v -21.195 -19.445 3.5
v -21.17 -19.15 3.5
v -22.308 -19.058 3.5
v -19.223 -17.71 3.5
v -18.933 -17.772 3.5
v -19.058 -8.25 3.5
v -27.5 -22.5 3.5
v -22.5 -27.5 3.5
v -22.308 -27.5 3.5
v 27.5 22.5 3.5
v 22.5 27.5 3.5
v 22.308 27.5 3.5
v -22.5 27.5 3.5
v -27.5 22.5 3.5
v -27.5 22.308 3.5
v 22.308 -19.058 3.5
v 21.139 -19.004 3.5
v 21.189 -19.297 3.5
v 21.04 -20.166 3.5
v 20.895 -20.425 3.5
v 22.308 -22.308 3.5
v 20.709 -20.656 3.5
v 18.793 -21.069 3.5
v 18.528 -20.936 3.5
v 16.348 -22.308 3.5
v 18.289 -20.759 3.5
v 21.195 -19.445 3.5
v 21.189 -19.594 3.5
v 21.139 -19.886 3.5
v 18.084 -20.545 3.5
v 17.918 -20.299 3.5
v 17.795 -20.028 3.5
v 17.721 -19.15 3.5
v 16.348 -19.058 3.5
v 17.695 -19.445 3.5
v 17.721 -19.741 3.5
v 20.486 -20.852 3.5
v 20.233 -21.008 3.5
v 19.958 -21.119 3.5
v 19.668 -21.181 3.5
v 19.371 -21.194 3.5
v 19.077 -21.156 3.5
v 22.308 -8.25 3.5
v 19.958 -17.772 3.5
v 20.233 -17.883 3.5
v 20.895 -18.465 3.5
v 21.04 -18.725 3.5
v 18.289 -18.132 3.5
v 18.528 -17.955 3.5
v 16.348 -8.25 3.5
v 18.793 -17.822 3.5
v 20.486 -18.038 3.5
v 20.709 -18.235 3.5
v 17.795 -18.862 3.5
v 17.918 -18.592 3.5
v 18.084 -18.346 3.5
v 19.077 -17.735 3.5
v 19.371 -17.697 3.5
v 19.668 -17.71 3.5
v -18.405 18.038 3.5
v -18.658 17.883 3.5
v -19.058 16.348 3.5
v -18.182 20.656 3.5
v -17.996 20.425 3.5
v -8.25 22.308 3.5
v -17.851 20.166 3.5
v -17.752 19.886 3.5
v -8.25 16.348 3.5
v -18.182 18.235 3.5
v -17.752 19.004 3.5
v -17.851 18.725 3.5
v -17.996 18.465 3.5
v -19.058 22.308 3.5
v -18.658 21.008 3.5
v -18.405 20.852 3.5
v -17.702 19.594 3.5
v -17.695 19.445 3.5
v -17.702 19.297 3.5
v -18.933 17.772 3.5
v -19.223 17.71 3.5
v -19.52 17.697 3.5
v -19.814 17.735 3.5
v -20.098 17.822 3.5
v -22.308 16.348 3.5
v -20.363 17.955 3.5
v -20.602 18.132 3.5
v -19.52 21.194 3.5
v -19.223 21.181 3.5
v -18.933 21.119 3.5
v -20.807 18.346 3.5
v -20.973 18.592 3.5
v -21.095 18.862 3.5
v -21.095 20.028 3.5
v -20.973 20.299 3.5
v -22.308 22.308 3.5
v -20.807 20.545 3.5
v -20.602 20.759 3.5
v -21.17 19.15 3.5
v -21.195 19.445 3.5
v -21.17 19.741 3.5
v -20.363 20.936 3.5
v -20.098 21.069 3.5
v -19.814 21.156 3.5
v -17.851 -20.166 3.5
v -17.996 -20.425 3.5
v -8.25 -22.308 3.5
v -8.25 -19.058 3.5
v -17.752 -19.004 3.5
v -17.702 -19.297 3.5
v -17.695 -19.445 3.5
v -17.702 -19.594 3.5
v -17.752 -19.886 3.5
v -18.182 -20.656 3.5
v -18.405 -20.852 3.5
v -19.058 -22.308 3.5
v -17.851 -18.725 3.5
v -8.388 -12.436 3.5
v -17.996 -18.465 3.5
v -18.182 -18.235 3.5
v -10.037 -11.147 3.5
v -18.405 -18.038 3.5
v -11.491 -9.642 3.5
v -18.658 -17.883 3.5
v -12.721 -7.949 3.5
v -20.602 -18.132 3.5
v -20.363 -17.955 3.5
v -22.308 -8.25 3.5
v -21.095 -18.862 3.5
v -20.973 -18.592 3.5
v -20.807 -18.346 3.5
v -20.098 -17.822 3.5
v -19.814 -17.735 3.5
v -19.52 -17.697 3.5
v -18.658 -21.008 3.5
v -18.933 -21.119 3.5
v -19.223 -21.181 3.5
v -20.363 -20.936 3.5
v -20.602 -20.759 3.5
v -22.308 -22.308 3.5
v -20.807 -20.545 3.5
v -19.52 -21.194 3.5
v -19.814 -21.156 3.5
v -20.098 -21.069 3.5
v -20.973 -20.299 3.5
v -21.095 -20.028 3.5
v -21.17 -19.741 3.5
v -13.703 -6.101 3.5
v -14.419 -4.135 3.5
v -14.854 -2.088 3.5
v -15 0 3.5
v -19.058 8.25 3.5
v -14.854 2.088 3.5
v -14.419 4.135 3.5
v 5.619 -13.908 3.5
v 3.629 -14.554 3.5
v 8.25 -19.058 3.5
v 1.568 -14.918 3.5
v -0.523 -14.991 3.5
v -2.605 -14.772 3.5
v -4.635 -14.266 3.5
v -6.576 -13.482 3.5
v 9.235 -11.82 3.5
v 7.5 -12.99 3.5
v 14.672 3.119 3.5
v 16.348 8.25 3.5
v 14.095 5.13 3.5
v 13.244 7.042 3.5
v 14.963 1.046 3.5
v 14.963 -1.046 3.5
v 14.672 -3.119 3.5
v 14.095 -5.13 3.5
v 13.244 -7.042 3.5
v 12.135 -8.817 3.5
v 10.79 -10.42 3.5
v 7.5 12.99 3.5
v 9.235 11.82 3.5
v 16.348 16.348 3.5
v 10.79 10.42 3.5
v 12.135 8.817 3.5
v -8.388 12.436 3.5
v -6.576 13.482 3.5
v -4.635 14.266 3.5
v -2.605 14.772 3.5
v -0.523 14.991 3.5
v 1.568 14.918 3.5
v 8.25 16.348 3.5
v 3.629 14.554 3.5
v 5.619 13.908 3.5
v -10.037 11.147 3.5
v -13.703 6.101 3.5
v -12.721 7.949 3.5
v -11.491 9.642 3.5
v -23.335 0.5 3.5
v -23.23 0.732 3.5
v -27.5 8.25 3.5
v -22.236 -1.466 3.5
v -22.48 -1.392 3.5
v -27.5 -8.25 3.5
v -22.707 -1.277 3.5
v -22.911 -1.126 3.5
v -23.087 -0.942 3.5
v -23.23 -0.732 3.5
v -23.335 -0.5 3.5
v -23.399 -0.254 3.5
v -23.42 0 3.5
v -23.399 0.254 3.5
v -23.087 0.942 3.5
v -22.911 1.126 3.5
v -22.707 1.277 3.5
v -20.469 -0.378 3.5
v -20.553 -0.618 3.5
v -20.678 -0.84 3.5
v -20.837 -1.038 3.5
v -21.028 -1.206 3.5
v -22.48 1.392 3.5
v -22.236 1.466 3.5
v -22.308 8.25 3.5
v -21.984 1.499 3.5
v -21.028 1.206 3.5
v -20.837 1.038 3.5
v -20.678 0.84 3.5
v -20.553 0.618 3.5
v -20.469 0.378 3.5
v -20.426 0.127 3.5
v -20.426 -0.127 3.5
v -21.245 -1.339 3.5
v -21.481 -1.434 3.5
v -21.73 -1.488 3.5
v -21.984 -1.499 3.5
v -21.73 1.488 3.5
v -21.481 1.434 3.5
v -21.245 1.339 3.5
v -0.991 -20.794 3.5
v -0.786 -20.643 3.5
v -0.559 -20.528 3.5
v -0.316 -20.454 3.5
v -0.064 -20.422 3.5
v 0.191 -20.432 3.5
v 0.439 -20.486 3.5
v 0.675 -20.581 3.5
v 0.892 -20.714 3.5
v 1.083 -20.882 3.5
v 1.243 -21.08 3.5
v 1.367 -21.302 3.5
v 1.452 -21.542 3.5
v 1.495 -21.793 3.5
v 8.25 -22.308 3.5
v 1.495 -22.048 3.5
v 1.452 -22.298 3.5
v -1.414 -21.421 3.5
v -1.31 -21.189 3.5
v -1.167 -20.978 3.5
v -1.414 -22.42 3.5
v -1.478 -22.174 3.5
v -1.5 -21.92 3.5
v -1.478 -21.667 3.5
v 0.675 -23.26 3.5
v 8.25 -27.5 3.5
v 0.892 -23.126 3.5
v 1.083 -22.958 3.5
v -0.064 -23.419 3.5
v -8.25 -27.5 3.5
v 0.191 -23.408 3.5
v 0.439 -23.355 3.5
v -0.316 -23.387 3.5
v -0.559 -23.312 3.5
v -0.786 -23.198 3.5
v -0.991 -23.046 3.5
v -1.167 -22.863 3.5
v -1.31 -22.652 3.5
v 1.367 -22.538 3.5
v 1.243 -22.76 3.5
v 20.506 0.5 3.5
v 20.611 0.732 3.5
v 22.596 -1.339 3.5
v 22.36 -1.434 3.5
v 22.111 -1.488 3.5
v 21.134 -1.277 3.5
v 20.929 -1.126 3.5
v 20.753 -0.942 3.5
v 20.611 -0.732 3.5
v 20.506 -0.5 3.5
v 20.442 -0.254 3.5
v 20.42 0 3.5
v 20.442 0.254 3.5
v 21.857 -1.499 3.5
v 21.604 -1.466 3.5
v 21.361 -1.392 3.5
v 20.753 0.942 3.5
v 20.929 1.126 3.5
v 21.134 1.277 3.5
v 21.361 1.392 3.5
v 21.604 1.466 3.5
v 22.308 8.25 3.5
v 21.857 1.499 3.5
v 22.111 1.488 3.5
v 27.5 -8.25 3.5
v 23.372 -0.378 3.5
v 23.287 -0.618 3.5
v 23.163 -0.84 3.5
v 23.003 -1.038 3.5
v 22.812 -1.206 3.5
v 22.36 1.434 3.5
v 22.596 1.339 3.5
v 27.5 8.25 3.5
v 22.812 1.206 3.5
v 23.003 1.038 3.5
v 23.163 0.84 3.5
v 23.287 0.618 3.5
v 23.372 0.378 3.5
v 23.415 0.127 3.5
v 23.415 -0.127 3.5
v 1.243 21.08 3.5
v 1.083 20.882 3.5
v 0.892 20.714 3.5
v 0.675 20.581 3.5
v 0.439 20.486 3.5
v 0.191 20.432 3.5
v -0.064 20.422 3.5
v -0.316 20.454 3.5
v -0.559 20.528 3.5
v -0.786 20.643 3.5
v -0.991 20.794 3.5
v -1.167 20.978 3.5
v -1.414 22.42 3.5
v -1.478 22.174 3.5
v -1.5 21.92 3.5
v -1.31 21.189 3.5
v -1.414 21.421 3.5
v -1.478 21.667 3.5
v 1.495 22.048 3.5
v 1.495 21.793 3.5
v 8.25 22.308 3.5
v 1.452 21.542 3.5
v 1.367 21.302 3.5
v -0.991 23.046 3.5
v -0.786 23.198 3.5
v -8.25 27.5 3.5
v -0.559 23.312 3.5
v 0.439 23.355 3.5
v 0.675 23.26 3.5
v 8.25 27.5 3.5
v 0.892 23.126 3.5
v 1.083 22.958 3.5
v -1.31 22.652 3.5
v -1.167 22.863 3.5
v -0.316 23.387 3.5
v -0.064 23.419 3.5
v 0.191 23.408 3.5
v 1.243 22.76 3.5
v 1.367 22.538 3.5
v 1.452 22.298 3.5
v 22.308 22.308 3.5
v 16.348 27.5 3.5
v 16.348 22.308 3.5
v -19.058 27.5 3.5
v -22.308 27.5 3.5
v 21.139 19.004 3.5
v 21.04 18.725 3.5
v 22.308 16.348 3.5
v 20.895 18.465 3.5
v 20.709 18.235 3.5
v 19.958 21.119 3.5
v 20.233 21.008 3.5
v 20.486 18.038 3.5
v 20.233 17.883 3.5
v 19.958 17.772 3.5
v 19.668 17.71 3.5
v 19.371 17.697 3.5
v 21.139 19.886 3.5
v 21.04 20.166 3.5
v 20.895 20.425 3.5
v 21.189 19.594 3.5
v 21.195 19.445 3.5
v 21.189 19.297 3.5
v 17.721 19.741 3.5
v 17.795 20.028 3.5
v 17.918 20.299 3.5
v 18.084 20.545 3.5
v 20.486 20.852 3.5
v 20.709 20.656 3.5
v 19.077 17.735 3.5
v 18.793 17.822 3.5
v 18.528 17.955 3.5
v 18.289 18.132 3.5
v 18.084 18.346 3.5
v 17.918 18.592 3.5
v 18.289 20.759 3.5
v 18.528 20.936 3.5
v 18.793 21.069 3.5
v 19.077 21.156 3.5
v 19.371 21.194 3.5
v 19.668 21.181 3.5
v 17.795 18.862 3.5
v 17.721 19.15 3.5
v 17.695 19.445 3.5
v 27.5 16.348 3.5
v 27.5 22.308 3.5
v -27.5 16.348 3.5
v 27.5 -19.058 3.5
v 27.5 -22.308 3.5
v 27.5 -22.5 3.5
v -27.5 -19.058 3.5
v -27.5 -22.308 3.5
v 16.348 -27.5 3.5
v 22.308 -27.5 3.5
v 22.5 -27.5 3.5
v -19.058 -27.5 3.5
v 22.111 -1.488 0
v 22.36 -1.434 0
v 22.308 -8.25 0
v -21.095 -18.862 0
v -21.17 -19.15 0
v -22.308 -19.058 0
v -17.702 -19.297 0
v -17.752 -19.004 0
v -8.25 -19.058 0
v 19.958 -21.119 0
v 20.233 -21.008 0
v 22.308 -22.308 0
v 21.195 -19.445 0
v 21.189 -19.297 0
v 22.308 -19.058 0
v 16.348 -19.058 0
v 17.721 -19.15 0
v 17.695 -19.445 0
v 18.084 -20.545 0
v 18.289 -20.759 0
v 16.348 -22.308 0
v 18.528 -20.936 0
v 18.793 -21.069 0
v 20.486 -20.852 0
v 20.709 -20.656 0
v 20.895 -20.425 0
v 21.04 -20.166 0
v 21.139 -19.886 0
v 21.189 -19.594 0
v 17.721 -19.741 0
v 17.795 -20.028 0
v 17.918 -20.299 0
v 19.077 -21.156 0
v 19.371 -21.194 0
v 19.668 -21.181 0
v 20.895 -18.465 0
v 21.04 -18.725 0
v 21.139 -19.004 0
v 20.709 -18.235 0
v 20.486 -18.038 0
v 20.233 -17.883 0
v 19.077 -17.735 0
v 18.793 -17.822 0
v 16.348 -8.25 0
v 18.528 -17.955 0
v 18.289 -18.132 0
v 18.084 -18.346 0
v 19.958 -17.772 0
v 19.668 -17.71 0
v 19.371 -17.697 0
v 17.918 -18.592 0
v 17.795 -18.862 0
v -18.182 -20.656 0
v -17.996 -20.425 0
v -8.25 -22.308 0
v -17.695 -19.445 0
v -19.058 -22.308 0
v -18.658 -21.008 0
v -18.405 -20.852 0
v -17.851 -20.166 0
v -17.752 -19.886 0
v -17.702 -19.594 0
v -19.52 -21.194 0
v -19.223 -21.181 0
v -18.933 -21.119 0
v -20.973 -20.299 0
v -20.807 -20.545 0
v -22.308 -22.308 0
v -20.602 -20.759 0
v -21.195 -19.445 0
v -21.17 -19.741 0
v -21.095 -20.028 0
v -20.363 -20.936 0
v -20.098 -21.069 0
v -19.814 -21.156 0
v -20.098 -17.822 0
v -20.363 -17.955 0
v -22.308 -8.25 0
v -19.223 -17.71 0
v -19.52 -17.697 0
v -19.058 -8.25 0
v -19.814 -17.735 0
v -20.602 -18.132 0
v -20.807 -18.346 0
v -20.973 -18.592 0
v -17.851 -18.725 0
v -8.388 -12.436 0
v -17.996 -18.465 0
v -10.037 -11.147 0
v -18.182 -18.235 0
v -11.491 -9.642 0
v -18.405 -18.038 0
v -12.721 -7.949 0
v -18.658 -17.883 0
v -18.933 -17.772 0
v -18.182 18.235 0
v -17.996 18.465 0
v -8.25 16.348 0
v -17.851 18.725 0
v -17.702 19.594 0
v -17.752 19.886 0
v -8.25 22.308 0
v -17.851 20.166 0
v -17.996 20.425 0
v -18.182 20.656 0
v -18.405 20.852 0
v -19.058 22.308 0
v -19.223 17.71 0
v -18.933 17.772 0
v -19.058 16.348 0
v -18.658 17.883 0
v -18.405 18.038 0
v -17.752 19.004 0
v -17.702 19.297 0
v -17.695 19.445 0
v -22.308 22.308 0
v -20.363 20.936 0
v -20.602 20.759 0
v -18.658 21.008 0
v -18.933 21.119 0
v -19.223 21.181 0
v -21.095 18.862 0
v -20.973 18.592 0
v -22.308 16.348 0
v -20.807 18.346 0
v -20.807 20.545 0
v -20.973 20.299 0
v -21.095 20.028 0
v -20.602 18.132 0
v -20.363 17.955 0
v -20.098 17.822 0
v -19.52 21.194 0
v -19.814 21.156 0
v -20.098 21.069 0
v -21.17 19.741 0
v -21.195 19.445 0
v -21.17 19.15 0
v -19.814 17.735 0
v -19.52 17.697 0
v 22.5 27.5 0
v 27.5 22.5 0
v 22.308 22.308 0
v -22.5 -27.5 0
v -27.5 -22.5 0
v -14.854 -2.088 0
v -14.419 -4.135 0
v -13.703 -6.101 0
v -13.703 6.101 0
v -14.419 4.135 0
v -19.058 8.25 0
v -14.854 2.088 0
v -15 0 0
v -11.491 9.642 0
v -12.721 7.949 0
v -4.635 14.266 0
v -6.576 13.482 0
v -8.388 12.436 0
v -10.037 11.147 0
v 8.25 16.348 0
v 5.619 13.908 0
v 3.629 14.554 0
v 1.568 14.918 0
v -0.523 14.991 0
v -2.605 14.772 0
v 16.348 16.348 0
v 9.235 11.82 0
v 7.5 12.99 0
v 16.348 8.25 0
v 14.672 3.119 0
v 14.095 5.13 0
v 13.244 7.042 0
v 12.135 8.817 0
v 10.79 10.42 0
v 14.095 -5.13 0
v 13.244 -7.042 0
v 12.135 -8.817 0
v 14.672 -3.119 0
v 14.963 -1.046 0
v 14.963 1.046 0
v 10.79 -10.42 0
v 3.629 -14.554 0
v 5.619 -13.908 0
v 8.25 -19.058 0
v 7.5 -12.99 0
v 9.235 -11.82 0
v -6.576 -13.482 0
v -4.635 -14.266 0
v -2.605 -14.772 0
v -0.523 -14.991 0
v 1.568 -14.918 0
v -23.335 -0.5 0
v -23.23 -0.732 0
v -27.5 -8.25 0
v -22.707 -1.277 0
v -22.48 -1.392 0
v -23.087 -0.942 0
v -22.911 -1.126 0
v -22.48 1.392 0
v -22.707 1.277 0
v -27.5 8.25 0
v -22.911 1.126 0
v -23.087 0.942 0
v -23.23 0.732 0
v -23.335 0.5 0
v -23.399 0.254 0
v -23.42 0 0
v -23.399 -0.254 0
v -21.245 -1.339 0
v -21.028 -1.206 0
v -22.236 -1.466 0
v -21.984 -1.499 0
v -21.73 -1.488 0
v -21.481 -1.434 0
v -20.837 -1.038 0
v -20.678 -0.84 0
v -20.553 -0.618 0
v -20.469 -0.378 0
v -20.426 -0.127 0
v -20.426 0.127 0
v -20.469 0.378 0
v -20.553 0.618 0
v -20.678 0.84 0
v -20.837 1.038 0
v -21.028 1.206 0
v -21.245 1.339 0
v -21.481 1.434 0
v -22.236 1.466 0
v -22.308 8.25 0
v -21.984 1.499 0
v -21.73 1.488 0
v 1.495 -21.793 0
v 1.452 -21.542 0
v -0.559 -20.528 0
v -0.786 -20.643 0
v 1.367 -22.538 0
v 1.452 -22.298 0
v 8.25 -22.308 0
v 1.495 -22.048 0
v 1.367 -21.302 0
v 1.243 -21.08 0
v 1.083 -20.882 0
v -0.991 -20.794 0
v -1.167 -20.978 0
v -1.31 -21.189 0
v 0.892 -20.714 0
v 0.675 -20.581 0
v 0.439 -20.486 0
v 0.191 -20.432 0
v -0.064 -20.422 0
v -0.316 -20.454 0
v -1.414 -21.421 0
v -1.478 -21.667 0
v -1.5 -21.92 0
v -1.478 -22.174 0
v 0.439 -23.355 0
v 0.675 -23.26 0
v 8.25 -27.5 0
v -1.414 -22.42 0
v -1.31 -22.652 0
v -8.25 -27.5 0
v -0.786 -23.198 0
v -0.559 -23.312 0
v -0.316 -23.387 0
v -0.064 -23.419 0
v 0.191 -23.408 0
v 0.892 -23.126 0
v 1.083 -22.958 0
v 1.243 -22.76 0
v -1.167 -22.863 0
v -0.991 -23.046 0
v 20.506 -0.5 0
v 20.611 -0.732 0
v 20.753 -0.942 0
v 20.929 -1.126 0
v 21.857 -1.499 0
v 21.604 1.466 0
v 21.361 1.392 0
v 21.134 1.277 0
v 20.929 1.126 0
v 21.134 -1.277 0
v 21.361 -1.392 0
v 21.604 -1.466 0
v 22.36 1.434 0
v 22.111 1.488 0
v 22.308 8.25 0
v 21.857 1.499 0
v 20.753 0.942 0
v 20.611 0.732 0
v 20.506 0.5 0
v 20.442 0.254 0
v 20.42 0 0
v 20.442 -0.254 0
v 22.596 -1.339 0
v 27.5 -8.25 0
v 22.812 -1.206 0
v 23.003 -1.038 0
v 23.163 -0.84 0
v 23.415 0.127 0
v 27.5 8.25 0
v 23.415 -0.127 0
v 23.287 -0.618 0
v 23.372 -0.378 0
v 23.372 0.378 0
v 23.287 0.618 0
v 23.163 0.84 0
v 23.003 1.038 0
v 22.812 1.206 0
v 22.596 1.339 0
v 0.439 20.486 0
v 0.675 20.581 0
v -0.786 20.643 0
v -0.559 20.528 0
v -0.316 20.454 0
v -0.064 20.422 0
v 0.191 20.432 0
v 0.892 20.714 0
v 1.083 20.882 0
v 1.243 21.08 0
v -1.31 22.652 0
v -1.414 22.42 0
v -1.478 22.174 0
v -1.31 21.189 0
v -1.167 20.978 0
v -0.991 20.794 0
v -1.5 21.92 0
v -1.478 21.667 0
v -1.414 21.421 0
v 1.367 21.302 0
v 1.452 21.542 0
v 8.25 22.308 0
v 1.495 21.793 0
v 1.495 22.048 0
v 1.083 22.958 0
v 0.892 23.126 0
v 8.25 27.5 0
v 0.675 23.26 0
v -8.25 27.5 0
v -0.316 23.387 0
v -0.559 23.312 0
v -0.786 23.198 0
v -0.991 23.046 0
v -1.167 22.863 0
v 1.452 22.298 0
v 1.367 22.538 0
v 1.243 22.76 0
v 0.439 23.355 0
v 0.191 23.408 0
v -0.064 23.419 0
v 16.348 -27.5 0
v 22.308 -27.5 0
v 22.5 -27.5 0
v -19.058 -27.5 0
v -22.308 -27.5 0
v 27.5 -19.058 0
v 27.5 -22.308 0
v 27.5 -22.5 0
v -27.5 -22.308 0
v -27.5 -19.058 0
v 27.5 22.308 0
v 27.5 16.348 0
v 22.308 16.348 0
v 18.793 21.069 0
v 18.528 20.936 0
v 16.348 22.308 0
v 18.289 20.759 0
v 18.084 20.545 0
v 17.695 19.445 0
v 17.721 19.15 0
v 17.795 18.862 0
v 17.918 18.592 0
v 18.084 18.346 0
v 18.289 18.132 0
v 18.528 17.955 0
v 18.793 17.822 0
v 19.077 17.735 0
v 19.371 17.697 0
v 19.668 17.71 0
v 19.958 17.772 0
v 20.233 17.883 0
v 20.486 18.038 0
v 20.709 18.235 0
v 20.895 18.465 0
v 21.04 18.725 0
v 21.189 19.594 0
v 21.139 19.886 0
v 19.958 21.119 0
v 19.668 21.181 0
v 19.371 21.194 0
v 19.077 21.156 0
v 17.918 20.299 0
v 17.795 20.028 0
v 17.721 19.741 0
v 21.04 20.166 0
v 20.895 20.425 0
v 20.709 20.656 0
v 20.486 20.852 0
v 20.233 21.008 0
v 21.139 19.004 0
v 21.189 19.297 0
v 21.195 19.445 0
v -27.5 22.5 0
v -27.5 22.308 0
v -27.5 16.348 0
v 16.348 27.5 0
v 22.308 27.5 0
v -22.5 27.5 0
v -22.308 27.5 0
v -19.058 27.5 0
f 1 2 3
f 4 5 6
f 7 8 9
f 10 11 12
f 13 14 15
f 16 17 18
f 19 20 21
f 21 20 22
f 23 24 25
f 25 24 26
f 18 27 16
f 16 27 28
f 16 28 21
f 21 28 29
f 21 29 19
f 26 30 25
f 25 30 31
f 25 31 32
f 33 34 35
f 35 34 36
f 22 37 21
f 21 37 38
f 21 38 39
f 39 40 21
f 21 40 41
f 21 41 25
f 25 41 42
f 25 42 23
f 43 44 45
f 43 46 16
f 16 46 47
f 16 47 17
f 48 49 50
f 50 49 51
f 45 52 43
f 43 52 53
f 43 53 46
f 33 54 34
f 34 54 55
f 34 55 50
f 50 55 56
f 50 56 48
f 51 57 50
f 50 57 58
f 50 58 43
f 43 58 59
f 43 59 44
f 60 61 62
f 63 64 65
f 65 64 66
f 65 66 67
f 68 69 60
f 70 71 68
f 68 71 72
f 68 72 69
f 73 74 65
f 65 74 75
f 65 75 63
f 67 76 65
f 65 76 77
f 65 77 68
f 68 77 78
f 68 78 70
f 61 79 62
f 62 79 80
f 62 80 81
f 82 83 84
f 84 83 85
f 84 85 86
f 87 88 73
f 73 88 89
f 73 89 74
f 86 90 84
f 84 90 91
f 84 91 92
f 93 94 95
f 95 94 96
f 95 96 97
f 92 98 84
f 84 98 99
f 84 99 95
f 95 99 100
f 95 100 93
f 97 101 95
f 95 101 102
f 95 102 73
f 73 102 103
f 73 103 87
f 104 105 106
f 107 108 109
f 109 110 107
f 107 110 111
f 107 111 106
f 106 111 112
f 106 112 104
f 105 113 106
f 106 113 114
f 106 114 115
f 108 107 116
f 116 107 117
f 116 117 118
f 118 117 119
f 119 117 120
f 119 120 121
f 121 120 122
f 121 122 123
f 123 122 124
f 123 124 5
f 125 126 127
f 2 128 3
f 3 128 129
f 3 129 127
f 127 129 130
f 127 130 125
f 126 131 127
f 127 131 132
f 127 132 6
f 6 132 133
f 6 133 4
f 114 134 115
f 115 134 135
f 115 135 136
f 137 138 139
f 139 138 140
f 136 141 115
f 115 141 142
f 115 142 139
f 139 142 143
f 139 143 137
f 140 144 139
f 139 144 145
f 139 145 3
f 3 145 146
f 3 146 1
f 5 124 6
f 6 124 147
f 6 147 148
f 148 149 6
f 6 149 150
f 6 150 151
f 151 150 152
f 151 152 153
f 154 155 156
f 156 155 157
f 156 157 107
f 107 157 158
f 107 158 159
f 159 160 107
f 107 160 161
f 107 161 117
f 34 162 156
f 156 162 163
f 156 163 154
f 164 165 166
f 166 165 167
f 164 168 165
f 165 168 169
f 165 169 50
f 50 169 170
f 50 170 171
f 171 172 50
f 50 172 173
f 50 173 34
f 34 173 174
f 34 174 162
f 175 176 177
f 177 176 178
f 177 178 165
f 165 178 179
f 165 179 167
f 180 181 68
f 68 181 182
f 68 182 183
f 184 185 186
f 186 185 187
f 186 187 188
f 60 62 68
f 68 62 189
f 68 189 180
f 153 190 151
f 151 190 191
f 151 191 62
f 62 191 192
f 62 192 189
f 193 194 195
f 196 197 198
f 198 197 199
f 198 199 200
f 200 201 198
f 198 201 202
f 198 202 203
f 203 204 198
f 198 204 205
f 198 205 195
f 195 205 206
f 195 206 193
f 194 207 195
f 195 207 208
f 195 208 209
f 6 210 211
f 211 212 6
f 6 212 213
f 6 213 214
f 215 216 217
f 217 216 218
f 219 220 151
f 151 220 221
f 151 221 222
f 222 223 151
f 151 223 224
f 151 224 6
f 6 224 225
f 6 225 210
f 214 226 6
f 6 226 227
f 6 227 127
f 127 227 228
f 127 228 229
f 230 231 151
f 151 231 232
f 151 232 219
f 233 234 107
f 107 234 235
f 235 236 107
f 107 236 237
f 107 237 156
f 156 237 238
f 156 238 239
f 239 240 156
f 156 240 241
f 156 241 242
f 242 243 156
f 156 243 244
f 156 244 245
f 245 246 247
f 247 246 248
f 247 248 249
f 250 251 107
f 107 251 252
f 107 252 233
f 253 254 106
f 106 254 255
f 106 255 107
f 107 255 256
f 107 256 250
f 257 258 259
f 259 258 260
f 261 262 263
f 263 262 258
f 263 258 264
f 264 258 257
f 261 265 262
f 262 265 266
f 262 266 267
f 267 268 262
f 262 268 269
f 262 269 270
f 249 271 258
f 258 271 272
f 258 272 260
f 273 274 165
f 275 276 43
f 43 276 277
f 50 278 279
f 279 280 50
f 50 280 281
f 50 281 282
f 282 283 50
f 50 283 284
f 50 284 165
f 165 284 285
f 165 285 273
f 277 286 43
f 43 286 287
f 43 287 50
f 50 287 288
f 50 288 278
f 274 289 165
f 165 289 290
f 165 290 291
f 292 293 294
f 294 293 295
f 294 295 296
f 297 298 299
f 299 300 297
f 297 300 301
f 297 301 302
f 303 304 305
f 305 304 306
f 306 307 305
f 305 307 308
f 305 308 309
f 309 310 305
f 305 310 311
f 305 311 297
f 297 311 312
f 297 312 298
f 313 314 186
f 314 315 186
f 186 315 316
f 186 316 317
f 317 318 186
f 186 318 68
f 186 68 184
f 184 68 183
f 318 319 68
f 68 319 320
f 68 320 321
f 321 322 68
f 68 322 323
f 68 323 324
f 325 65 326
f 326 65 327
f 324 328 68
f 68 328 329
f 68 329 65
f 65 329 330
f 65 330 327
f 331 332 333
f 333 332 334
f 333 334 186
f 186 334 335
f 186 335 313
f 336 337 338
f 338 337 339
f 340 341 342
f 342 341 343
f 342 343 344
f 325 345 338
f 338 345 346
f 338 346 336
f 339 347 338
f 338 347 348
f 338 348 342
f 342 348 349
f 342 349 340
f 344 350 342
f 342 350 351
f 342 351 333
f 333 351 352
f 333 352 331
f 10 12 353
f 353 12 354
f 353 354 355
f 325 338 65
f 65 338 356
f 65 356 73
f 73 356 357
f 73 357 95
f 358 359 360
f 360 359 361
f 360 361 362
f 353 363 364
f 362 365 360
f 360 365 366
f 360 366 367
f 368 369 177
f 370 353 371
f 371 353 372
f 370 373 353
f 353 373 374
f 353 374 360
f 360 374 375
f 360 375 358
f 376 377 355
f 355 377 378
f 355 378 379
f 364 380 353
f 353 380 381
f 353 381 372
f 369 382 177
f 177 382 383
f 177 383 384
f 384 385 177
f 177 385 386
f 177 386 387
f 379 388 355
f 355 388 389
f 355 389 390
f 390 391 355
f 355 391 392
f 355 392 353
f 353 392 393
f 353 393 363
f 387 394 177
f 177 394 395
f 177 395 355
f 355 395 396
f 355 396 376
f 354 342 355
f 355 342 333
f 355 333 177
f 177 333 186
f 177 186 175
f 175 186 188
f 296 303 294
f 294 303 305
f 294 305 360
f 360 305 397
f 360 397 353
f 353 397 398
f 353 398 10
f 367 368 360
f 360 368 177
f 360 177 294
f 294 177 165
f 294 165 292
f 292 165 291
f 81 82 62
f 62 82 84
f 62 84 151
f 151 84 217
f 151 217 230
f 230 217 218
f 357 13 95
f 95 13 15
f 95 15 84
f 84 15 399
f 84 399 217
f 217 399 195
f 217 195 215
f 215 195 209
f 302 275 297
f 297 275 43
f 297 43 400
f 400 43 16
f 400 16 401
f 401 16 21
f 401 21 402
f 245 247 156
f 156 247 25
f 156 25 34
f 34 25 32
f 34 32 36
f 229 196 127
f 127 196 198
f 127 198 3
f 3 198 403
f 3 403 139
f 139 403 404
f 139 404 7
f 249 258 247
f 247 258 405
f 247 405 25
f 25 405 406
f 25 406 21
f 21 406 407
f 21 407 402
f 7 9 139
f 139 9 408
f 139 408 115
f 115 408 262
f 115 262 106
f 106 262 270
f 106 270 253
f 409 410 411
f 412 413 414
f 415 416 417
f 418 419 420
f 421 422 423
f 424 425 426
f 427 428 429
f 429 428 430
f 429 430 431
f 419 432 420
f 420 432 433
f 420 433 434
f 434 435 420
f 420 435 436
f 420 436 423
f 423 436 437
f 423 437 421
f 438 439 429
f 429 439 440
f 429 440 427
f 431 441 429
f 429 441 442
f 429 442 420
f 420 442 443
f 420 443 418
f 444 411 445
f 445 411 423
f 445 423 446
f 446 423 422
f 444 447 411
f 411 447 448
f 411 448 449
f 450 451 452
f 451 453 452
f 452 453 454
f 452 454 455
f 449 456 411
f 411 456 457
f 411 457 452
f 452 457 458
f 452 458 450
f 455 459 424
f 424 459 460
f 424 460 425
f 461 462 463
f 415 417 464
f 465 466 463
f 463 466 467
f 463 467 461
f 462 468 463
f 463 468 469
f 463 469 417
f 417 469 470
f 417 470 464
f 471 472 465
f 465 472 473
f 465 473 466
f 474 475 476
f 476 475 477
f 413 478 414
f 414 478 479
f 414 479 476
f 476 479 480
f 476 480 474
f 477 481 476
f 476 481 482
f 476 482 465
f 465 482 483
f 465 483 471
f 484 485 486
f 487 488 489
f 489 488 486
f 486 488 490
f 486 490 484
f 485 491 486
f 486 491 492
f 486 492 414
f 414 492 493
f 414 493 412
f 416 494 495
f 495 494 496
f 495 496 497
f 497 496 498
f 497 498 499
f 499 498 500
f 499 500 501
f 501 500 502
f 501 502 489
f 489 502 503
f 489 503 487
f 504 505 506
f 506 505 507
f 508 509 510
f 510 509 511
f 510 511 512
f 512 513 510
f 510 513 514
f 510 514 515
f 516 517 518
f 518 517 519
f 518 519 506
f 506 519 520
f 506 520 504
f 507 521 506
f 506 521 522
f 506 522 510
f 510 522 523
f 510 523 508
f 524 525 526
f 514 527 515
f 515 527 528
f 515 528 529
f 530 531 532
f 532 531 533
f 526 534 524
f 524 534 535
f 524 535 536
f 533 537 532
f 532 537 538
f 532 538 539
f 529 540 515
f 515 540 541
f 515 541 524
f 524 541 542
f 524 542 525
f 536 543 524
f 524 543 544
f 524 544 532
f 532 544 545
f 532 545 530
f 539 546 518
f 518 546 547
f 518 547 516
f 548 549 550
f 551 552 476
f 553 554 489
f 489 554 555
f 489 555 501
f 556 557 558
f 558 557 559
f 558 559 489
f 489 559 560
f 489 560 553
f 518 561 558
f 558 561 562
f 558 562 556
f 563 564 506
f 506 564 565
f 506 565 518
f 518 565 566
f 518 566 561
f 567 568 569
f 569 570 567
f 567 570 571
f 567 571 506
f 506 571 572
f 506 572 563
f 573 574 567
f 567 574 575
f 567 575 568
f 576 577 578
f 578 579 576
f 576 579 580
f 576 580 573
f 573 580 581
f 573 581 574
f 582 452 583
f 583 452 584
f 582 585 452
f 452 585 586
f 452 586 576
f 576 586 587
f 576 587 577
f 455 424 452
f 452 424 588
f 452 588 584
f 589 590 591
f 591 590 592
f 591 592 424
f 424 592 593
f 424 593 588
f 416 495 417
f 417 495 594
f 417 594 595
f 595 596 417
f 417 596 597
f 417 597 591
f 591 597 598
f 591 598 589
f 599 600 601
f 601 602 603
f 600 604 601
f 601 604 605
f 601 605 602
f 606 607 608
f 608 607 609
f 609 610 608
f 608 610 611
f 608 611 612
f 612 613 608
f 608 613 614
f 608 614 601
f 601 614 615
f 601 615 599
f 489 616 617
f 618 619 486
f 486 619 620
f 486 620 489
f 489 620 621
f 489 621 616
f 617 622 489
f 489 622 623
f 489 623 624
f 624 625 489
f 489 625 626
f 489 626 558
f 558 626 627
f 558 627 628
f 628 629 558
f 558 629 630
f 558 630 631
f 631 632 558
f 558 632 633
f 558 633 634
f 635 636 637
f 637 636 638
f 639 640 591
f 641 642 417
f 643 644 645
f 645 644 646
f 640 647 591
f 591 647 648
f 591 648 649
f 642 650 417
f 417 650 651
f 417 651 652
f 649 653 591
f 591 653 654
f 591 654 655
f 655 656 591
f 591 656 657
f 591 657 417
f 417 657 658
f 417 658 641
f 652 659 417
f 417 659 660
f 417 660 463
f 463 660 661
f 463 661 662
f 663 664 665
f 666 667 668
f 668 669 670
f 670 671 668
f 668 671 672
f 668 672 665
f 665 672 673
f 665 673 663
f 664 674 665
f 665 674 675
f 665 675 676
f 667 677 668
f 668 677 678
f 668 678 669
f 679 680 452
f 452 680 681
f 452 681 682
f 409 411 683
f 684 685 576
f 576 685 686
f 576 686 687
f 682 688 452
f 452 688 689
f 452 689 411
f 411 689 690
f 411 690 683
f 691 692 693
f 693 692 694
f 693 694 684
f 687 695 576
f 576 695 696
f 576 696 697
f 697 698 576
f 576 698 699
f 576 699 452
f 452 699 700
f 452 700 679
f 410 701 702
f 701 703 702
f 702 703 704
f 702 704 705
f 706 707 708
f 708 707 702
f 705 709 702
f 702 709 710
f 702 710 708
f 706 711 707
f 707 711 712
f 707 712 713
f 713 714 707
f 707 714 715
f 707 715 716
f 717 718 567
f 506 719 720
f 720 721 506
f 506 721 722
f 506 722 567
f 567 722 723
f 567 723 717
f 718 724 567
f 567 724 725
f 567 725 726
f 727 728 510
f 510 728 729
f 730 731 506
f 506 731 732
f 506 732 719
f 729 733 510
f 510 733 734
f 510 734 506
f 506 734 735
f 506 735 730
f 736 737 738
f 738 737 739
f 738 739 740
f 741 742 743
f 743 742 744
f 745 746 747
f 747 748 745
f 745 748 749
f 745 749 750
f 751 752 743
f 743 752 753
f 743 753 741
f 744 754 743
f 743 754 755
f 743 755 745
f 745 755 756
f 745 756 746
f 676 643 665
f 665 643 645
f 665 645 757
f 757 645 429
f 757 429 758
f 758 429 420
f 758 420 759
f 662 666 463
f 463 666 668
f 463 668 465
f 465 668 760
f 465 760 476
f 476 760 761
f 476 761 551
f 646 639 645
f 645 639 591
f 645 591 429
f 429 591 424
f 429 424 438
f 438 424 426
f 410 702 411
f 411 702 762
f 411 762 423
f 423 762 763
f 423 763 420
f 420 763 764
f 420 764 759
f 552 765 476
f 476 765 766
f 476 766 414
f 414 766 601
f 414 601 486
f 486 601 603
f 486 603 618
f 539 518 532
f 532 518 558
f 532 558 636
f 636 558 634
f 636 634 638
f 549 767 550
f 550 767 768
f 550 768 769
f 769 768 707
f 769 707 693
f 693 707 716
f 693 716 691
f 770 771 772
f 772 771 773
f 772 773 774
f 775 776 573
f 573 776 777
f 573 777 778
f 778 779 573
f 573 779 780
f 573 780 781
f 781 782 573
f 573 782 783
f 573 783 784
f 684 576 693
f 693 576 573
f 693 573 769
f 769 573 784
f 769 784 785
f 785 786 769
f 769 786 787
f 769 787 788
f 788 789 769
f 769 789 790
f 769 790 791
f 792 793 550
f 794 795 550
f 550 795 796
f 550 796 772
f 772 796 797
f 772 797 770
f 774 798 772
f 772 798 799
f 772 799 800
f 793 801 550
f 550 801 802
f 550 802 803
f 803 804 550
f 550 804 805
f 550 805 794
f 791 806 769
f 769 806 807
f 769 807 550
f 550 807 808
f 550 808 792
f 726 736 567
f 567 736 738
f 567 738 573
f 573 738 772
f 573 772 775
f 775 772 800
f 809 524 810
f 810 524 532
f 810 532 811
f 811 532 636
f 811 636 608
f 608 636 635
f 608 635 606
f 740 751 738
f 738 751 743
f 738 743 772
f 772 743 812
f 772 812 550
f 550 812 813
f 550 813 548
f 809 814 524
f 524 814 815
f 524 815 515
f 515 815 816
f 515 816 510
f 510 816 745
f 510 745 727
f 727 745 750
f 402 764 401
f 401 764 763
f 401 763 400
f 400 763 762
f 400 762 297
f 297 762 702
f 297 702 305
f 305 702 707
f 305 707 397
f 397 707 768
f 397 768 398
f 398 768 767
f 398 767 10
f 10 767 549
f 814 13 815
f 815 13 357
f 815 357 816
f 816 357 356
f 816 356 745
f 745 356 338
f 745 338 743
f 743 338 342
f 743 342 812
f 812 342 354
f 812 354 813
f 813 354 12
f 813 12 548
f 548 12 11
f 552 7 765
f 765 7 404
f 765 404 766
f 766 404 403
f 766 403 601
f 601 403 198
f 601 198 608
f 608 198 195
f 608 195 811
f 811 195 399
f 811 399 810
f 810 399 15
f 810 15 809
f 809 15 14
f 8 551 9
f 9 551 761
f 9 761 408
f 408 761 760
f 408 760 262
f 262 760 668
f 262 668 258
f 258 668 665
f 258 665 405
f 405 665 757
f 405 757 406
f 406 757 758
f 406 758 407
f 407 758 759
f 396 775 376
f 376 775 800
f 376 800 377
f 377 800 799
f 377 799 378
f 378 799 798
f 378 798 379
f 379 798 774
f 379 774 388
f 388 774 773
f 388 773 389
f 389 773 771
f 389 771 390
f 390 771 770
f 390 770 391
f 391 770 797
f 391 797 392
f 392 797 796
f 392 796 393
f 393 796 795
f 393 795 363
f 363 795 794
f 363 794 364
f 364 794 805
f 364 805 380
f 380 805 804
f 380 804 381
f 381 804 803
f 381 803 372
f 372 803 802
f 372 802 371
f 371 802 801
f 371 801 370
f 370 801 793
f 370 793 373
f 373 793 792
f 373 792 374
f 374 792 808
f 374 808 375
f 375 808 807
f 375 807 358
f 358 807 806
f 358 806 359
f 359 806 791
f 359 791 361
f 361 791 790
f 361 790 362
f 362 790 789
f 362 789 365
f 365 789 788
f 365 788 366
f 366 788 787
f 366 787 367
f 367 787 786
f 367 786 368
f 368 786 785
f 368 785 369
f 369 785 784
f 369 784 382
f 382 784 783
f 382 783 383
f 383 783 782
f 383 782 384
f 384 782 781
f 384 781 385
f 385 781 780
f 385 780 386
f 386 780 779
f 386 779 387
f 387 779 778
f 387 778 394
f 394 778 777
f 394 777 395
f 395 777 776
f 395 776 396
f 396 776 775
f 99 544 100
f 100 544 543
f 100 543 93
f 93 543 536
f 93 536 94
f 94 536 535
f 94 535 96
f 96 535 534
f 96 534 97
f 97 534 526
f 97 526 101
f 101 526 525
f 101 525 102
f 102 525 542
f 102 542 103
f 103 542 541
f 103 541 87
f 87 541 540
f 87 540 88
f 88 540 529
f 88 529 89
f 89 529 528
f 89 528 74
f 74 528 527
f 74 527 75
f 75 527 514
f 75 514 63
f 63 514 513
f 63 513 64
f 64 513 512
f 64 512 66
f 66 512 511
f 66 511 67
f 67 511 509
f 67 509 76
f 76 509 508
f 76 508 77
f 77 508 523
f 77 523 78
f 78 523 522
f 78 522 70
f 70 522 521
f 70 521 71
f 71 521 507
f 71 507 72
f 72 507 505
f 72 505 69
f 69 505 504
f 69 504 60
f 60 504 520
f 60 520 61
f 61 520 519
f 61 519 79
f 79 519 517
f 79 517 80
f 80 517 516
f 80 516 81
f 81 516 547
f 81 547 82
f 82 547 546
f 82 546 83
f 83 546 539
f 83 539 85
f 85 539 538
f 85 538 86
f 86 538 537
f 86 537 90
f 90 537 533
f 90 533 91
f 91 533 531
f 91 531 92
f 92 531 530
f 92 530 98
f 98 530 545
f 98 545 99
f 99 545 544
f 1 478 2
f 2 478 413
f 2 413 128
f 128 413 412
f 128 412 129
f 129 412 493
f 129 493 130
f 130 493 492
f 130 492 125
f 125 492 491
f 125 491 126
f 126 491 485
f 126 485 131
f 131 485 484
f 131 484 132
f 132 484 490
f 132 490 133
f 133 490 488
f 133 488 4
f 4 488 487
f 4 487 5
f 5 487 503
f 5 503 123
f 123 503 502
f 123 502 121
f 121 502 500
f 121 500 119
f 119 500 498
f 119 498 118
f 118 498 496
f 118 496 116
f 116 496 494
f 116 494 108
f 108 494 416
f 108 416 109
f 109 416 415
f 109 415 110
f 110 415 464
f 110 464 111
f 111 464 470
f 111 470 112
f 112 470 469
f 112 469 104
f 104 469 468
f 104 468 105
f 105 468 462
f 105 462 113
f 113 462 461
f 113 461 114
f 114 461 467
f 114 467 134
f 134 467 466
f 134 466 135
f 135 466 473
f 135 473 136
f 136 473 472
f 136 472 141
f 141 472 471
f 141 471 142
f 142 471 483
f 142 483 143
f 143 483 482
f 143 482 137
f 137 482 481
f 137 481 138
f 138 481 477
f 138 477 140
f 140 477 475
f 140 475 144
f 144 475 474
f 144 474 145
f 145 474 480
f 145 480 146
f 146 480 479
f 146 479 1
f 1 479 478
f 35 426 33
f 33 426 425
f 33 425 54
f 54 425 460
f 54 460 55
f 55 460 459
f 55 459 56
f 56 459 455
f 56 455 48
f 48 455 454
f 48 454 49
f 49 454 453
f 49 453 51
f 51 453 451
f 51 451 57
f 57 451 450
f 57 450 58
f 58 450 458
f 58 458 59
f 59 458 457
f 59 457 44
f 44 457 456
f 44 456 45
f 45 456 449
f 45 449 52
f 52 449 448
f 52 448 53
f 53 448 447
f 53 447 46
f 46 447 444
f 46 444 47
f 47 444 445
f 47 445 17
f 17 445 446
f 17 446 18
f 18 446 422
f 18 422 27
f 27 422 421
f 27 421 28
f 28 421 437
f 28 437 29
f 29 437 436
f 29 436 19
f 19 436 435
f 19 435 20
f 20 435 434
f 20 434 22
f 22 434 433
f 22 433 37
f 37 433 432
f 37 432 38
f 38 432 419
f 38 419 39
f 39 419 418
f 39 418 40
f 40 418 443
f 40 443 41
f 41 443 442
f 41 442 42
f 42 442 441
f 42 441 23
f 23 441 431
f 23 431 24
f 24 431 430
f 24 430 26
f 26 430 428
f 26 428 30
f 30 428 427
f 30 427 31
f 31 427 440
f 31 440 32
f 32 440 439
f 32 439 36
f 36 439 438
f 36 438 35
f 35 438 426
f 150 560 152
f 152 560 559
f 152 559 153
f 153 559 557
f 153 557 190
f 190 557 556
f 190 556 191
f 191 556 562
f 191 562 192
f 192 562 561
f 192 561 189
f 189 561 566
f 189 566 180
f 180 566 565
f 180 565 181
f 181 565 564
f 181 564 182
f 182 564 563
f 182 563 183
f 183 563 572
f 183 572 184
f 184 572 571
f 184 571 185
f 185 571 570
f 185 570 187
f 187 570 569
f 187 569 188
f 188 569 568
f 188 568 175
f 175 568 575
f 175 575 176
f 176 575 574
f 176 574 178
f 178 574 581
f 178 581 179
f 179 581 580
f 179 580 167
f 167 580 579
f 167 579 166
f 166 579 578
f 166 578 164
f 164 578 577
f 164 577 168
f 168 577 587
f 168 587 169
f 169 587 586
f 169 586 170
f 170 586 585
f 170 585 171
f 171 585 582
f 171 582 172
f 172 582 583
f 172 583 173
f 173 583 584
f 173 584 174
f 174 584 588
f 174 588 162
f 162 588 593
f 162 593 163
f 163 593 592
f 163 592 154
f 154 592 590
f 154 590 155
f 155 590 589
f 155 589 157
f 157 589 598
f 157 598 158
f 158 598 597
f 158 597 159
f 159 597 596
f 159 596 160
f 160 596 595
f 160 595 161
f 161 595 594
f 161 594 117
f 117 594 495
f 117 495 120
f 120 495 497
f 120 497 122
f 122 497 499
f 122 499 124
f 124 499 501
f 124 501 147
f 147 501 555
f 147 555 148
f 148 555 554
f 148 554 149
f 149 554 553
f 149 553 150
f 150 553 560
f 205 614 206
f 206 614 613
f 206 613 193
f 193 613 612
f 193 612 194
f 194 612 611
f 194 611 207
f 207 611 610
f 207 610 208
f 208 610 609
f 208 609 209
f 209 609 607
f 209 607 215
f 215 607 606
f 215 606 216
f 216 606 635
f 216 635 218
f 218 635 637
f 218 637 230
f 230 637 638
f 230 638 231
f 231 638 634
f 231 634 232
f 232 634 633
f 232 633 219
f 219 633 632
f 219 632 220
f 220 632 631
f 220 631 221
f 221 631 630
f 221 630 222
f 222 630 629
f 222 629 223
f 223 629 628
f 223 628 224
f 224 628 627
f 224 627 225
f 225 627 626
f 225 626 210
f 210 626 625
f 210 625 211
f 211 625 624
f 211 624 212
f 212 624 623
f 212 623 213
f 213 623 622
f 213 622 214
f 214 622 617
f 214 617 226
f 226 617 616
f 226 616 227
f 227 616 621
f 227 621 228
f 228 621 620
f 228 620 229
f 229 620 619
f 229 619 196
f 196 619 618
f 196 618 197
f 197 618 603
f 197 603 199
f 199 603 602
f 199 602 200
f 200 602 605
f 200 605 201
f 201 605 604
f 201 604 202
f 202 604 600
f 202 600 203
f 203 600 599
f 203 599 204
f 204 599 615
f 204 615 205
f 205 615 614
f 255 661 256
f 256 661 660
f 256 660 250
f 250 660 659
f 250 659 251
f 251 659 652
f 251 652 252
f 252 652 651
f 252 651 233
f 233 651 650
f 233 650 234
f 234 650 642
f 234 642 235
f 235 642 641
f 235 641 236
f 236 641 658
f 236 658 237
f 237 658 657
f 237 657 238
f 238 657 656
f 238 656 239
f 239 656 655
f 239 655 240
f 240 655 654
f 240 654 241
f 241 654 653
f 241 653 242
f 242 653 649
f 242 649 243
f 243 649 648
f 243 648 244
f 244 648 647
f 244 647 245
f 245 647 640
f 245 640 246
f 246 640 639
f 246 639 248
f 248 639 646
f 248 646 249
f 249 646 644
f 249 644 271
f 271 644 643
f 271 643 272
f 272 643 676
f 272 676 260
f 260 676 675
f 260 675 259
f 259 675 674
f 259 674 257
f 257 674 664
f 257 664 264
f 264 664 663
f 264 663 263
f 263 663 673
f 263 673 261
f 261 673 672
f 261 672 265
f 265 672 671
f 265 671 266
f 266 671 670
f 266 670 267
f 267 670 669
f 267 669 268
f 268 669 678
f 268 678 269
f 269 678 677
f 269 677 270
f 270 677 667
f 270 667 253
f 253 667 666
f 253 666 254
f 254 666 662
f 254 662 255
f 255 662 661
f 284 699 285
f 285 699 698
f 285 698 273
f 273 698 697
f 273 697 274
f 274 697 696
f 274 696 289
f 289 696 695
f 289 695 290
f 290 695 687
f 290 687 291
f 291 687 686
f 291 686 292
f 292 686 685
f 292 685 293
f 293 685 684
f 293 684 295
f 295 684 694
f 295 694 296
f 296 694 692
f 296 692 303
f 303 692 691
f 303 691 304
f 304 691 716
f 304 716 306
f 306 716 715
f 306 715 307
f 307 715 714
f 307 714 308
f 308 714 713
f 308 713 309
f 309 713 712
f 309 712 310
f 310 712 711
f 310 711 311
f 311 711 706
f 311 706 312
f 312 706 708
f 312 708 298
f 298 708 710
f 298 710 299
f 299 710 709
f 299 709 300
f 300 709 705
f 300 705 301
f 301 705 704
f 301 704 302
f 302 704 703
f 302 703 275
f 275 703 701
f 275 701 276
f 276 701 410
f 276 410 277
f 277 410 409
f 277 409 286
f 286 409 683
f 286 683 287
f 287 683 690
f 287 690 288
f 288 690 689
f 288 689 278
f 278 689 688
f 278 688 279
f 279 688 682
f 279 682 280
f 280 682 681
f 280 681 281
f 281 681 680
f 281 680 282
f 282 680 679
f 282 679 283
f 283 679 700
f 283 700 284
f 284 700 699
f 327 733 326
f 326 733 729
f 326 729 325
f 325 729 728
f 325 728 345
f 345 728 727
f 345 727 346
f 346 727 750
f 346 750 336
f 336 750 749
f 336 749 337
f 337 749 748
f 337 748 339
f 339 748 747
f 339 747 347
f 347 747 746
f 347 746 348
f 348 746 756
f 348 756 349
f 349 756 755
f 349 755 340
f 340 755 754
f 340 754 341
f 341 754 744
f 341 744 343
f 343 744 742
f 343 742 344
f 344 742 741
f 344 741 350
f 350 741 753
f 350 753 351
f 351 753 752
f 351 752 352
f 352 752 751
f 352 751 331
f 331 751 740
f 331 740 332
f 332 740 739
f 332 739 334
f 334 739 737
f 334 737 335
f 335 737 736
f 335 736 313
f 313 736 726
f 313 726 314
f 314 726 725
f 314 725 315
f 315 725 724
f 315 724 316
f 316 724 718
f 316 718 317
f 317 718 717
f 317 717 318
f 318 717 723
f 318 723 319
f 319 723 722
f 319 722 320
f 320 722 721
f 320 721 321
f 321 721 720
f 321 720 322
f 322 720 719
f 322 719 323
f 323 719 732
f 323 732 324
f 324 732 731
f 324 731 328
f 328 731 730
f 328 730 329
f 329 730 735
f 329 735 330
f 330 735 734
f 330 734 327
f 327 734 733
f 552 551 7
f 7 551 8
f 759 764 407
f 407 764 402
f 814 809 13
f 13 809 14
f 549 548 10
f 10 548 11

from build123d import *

# Parameters (mm, degrees)
SKETCH1_W           = 55
SKETCH1_H           = 55
SKETCH1_R           = 1.75
BOSS_EXTRUDE1_DEPTH = 3.5
SKETCH2_R           = 15
CUT_EXTRUDE1_DEPTH  = 40.048047326
SKETCH3_R           = 1.5
CUT_EXTRUDE2_DEPTH  = 40.048047326
CHAMFER1_SIZE       = 5


with BuildPart() as part:
    # Sketch1 → Boss-Extrude1 (new body)
    with BuildSketch(Plane.XY):
        Rectangle(SKETCH1_W, SKETCH1_H)
        with Locations((19.445436483, 19.445436483)):
            Circle(SKETCH1_R, mode=Mode.SUBTRACT)
        with Locations((-19.445436483, 19.445436483)):
            Circle(SKETCH1_R, mode=Mode.SUBTRACT)
        with Locations((-19.445436483, -19.445436483)):
            Circle(SKETCH1_R, mode=Mode.SUBTRACT)
        with Locations((19.445436483, -19.445436483)):
            Circle(SKETCH1_R, mode=Mode.SUBTRACT)
    extrude(amount=BOSS_EXTRUDE1_DEPTH)

    # Sketch2 → Cut-Extrude1 (cut, through all)
    with BuildSketch(Plane(origin=(0, 0, 0), x_dir=(-1, 0, 0), z_dir=(0, 0, -1))):
        Circle(SKETCH2_R)
    extrude(amount=-CUT_EXTRUDE1_DEPTH, mode=Mode.SUBTRACT)

    # Sketch3 → Cut-Extrude2 (cut, through all)
    with BuildSketch(Plane(origin=(0, 0, 0), x_dir=(-1, 0, 0), z_dir=(0, 0, -1))):
        with Locations((0, 21.920310217)):
            Circle(SKETCH3_R)
        with Locations((21.920310217, 0)):
            Circle(SKETCH3_R)
        with Locations((0, -21.920310217)):
            Circle(SKETCH3_R)
        with Locations((-21.920310217, 0)):
            Circle(SKETCH3_R)
    extrude(amount=-CUT_EXTRUDE2_DEPTH, mode=Mode.SUBTRACT)

    # Chamfer1
    chamfer1_edges = [part.edges().sort_by_distance(p)[0] for p in [
        (27.5, -27.5, 1.75),
        (-27.5, -27.5, 1.75),
        (-27.5, 27.5, 1.75),
        (27.5, 27.5, 1.75),
    ]]
    chamfer(chamfer1_edges, length=CHAMFER1_SIZE)


solid = part.part
